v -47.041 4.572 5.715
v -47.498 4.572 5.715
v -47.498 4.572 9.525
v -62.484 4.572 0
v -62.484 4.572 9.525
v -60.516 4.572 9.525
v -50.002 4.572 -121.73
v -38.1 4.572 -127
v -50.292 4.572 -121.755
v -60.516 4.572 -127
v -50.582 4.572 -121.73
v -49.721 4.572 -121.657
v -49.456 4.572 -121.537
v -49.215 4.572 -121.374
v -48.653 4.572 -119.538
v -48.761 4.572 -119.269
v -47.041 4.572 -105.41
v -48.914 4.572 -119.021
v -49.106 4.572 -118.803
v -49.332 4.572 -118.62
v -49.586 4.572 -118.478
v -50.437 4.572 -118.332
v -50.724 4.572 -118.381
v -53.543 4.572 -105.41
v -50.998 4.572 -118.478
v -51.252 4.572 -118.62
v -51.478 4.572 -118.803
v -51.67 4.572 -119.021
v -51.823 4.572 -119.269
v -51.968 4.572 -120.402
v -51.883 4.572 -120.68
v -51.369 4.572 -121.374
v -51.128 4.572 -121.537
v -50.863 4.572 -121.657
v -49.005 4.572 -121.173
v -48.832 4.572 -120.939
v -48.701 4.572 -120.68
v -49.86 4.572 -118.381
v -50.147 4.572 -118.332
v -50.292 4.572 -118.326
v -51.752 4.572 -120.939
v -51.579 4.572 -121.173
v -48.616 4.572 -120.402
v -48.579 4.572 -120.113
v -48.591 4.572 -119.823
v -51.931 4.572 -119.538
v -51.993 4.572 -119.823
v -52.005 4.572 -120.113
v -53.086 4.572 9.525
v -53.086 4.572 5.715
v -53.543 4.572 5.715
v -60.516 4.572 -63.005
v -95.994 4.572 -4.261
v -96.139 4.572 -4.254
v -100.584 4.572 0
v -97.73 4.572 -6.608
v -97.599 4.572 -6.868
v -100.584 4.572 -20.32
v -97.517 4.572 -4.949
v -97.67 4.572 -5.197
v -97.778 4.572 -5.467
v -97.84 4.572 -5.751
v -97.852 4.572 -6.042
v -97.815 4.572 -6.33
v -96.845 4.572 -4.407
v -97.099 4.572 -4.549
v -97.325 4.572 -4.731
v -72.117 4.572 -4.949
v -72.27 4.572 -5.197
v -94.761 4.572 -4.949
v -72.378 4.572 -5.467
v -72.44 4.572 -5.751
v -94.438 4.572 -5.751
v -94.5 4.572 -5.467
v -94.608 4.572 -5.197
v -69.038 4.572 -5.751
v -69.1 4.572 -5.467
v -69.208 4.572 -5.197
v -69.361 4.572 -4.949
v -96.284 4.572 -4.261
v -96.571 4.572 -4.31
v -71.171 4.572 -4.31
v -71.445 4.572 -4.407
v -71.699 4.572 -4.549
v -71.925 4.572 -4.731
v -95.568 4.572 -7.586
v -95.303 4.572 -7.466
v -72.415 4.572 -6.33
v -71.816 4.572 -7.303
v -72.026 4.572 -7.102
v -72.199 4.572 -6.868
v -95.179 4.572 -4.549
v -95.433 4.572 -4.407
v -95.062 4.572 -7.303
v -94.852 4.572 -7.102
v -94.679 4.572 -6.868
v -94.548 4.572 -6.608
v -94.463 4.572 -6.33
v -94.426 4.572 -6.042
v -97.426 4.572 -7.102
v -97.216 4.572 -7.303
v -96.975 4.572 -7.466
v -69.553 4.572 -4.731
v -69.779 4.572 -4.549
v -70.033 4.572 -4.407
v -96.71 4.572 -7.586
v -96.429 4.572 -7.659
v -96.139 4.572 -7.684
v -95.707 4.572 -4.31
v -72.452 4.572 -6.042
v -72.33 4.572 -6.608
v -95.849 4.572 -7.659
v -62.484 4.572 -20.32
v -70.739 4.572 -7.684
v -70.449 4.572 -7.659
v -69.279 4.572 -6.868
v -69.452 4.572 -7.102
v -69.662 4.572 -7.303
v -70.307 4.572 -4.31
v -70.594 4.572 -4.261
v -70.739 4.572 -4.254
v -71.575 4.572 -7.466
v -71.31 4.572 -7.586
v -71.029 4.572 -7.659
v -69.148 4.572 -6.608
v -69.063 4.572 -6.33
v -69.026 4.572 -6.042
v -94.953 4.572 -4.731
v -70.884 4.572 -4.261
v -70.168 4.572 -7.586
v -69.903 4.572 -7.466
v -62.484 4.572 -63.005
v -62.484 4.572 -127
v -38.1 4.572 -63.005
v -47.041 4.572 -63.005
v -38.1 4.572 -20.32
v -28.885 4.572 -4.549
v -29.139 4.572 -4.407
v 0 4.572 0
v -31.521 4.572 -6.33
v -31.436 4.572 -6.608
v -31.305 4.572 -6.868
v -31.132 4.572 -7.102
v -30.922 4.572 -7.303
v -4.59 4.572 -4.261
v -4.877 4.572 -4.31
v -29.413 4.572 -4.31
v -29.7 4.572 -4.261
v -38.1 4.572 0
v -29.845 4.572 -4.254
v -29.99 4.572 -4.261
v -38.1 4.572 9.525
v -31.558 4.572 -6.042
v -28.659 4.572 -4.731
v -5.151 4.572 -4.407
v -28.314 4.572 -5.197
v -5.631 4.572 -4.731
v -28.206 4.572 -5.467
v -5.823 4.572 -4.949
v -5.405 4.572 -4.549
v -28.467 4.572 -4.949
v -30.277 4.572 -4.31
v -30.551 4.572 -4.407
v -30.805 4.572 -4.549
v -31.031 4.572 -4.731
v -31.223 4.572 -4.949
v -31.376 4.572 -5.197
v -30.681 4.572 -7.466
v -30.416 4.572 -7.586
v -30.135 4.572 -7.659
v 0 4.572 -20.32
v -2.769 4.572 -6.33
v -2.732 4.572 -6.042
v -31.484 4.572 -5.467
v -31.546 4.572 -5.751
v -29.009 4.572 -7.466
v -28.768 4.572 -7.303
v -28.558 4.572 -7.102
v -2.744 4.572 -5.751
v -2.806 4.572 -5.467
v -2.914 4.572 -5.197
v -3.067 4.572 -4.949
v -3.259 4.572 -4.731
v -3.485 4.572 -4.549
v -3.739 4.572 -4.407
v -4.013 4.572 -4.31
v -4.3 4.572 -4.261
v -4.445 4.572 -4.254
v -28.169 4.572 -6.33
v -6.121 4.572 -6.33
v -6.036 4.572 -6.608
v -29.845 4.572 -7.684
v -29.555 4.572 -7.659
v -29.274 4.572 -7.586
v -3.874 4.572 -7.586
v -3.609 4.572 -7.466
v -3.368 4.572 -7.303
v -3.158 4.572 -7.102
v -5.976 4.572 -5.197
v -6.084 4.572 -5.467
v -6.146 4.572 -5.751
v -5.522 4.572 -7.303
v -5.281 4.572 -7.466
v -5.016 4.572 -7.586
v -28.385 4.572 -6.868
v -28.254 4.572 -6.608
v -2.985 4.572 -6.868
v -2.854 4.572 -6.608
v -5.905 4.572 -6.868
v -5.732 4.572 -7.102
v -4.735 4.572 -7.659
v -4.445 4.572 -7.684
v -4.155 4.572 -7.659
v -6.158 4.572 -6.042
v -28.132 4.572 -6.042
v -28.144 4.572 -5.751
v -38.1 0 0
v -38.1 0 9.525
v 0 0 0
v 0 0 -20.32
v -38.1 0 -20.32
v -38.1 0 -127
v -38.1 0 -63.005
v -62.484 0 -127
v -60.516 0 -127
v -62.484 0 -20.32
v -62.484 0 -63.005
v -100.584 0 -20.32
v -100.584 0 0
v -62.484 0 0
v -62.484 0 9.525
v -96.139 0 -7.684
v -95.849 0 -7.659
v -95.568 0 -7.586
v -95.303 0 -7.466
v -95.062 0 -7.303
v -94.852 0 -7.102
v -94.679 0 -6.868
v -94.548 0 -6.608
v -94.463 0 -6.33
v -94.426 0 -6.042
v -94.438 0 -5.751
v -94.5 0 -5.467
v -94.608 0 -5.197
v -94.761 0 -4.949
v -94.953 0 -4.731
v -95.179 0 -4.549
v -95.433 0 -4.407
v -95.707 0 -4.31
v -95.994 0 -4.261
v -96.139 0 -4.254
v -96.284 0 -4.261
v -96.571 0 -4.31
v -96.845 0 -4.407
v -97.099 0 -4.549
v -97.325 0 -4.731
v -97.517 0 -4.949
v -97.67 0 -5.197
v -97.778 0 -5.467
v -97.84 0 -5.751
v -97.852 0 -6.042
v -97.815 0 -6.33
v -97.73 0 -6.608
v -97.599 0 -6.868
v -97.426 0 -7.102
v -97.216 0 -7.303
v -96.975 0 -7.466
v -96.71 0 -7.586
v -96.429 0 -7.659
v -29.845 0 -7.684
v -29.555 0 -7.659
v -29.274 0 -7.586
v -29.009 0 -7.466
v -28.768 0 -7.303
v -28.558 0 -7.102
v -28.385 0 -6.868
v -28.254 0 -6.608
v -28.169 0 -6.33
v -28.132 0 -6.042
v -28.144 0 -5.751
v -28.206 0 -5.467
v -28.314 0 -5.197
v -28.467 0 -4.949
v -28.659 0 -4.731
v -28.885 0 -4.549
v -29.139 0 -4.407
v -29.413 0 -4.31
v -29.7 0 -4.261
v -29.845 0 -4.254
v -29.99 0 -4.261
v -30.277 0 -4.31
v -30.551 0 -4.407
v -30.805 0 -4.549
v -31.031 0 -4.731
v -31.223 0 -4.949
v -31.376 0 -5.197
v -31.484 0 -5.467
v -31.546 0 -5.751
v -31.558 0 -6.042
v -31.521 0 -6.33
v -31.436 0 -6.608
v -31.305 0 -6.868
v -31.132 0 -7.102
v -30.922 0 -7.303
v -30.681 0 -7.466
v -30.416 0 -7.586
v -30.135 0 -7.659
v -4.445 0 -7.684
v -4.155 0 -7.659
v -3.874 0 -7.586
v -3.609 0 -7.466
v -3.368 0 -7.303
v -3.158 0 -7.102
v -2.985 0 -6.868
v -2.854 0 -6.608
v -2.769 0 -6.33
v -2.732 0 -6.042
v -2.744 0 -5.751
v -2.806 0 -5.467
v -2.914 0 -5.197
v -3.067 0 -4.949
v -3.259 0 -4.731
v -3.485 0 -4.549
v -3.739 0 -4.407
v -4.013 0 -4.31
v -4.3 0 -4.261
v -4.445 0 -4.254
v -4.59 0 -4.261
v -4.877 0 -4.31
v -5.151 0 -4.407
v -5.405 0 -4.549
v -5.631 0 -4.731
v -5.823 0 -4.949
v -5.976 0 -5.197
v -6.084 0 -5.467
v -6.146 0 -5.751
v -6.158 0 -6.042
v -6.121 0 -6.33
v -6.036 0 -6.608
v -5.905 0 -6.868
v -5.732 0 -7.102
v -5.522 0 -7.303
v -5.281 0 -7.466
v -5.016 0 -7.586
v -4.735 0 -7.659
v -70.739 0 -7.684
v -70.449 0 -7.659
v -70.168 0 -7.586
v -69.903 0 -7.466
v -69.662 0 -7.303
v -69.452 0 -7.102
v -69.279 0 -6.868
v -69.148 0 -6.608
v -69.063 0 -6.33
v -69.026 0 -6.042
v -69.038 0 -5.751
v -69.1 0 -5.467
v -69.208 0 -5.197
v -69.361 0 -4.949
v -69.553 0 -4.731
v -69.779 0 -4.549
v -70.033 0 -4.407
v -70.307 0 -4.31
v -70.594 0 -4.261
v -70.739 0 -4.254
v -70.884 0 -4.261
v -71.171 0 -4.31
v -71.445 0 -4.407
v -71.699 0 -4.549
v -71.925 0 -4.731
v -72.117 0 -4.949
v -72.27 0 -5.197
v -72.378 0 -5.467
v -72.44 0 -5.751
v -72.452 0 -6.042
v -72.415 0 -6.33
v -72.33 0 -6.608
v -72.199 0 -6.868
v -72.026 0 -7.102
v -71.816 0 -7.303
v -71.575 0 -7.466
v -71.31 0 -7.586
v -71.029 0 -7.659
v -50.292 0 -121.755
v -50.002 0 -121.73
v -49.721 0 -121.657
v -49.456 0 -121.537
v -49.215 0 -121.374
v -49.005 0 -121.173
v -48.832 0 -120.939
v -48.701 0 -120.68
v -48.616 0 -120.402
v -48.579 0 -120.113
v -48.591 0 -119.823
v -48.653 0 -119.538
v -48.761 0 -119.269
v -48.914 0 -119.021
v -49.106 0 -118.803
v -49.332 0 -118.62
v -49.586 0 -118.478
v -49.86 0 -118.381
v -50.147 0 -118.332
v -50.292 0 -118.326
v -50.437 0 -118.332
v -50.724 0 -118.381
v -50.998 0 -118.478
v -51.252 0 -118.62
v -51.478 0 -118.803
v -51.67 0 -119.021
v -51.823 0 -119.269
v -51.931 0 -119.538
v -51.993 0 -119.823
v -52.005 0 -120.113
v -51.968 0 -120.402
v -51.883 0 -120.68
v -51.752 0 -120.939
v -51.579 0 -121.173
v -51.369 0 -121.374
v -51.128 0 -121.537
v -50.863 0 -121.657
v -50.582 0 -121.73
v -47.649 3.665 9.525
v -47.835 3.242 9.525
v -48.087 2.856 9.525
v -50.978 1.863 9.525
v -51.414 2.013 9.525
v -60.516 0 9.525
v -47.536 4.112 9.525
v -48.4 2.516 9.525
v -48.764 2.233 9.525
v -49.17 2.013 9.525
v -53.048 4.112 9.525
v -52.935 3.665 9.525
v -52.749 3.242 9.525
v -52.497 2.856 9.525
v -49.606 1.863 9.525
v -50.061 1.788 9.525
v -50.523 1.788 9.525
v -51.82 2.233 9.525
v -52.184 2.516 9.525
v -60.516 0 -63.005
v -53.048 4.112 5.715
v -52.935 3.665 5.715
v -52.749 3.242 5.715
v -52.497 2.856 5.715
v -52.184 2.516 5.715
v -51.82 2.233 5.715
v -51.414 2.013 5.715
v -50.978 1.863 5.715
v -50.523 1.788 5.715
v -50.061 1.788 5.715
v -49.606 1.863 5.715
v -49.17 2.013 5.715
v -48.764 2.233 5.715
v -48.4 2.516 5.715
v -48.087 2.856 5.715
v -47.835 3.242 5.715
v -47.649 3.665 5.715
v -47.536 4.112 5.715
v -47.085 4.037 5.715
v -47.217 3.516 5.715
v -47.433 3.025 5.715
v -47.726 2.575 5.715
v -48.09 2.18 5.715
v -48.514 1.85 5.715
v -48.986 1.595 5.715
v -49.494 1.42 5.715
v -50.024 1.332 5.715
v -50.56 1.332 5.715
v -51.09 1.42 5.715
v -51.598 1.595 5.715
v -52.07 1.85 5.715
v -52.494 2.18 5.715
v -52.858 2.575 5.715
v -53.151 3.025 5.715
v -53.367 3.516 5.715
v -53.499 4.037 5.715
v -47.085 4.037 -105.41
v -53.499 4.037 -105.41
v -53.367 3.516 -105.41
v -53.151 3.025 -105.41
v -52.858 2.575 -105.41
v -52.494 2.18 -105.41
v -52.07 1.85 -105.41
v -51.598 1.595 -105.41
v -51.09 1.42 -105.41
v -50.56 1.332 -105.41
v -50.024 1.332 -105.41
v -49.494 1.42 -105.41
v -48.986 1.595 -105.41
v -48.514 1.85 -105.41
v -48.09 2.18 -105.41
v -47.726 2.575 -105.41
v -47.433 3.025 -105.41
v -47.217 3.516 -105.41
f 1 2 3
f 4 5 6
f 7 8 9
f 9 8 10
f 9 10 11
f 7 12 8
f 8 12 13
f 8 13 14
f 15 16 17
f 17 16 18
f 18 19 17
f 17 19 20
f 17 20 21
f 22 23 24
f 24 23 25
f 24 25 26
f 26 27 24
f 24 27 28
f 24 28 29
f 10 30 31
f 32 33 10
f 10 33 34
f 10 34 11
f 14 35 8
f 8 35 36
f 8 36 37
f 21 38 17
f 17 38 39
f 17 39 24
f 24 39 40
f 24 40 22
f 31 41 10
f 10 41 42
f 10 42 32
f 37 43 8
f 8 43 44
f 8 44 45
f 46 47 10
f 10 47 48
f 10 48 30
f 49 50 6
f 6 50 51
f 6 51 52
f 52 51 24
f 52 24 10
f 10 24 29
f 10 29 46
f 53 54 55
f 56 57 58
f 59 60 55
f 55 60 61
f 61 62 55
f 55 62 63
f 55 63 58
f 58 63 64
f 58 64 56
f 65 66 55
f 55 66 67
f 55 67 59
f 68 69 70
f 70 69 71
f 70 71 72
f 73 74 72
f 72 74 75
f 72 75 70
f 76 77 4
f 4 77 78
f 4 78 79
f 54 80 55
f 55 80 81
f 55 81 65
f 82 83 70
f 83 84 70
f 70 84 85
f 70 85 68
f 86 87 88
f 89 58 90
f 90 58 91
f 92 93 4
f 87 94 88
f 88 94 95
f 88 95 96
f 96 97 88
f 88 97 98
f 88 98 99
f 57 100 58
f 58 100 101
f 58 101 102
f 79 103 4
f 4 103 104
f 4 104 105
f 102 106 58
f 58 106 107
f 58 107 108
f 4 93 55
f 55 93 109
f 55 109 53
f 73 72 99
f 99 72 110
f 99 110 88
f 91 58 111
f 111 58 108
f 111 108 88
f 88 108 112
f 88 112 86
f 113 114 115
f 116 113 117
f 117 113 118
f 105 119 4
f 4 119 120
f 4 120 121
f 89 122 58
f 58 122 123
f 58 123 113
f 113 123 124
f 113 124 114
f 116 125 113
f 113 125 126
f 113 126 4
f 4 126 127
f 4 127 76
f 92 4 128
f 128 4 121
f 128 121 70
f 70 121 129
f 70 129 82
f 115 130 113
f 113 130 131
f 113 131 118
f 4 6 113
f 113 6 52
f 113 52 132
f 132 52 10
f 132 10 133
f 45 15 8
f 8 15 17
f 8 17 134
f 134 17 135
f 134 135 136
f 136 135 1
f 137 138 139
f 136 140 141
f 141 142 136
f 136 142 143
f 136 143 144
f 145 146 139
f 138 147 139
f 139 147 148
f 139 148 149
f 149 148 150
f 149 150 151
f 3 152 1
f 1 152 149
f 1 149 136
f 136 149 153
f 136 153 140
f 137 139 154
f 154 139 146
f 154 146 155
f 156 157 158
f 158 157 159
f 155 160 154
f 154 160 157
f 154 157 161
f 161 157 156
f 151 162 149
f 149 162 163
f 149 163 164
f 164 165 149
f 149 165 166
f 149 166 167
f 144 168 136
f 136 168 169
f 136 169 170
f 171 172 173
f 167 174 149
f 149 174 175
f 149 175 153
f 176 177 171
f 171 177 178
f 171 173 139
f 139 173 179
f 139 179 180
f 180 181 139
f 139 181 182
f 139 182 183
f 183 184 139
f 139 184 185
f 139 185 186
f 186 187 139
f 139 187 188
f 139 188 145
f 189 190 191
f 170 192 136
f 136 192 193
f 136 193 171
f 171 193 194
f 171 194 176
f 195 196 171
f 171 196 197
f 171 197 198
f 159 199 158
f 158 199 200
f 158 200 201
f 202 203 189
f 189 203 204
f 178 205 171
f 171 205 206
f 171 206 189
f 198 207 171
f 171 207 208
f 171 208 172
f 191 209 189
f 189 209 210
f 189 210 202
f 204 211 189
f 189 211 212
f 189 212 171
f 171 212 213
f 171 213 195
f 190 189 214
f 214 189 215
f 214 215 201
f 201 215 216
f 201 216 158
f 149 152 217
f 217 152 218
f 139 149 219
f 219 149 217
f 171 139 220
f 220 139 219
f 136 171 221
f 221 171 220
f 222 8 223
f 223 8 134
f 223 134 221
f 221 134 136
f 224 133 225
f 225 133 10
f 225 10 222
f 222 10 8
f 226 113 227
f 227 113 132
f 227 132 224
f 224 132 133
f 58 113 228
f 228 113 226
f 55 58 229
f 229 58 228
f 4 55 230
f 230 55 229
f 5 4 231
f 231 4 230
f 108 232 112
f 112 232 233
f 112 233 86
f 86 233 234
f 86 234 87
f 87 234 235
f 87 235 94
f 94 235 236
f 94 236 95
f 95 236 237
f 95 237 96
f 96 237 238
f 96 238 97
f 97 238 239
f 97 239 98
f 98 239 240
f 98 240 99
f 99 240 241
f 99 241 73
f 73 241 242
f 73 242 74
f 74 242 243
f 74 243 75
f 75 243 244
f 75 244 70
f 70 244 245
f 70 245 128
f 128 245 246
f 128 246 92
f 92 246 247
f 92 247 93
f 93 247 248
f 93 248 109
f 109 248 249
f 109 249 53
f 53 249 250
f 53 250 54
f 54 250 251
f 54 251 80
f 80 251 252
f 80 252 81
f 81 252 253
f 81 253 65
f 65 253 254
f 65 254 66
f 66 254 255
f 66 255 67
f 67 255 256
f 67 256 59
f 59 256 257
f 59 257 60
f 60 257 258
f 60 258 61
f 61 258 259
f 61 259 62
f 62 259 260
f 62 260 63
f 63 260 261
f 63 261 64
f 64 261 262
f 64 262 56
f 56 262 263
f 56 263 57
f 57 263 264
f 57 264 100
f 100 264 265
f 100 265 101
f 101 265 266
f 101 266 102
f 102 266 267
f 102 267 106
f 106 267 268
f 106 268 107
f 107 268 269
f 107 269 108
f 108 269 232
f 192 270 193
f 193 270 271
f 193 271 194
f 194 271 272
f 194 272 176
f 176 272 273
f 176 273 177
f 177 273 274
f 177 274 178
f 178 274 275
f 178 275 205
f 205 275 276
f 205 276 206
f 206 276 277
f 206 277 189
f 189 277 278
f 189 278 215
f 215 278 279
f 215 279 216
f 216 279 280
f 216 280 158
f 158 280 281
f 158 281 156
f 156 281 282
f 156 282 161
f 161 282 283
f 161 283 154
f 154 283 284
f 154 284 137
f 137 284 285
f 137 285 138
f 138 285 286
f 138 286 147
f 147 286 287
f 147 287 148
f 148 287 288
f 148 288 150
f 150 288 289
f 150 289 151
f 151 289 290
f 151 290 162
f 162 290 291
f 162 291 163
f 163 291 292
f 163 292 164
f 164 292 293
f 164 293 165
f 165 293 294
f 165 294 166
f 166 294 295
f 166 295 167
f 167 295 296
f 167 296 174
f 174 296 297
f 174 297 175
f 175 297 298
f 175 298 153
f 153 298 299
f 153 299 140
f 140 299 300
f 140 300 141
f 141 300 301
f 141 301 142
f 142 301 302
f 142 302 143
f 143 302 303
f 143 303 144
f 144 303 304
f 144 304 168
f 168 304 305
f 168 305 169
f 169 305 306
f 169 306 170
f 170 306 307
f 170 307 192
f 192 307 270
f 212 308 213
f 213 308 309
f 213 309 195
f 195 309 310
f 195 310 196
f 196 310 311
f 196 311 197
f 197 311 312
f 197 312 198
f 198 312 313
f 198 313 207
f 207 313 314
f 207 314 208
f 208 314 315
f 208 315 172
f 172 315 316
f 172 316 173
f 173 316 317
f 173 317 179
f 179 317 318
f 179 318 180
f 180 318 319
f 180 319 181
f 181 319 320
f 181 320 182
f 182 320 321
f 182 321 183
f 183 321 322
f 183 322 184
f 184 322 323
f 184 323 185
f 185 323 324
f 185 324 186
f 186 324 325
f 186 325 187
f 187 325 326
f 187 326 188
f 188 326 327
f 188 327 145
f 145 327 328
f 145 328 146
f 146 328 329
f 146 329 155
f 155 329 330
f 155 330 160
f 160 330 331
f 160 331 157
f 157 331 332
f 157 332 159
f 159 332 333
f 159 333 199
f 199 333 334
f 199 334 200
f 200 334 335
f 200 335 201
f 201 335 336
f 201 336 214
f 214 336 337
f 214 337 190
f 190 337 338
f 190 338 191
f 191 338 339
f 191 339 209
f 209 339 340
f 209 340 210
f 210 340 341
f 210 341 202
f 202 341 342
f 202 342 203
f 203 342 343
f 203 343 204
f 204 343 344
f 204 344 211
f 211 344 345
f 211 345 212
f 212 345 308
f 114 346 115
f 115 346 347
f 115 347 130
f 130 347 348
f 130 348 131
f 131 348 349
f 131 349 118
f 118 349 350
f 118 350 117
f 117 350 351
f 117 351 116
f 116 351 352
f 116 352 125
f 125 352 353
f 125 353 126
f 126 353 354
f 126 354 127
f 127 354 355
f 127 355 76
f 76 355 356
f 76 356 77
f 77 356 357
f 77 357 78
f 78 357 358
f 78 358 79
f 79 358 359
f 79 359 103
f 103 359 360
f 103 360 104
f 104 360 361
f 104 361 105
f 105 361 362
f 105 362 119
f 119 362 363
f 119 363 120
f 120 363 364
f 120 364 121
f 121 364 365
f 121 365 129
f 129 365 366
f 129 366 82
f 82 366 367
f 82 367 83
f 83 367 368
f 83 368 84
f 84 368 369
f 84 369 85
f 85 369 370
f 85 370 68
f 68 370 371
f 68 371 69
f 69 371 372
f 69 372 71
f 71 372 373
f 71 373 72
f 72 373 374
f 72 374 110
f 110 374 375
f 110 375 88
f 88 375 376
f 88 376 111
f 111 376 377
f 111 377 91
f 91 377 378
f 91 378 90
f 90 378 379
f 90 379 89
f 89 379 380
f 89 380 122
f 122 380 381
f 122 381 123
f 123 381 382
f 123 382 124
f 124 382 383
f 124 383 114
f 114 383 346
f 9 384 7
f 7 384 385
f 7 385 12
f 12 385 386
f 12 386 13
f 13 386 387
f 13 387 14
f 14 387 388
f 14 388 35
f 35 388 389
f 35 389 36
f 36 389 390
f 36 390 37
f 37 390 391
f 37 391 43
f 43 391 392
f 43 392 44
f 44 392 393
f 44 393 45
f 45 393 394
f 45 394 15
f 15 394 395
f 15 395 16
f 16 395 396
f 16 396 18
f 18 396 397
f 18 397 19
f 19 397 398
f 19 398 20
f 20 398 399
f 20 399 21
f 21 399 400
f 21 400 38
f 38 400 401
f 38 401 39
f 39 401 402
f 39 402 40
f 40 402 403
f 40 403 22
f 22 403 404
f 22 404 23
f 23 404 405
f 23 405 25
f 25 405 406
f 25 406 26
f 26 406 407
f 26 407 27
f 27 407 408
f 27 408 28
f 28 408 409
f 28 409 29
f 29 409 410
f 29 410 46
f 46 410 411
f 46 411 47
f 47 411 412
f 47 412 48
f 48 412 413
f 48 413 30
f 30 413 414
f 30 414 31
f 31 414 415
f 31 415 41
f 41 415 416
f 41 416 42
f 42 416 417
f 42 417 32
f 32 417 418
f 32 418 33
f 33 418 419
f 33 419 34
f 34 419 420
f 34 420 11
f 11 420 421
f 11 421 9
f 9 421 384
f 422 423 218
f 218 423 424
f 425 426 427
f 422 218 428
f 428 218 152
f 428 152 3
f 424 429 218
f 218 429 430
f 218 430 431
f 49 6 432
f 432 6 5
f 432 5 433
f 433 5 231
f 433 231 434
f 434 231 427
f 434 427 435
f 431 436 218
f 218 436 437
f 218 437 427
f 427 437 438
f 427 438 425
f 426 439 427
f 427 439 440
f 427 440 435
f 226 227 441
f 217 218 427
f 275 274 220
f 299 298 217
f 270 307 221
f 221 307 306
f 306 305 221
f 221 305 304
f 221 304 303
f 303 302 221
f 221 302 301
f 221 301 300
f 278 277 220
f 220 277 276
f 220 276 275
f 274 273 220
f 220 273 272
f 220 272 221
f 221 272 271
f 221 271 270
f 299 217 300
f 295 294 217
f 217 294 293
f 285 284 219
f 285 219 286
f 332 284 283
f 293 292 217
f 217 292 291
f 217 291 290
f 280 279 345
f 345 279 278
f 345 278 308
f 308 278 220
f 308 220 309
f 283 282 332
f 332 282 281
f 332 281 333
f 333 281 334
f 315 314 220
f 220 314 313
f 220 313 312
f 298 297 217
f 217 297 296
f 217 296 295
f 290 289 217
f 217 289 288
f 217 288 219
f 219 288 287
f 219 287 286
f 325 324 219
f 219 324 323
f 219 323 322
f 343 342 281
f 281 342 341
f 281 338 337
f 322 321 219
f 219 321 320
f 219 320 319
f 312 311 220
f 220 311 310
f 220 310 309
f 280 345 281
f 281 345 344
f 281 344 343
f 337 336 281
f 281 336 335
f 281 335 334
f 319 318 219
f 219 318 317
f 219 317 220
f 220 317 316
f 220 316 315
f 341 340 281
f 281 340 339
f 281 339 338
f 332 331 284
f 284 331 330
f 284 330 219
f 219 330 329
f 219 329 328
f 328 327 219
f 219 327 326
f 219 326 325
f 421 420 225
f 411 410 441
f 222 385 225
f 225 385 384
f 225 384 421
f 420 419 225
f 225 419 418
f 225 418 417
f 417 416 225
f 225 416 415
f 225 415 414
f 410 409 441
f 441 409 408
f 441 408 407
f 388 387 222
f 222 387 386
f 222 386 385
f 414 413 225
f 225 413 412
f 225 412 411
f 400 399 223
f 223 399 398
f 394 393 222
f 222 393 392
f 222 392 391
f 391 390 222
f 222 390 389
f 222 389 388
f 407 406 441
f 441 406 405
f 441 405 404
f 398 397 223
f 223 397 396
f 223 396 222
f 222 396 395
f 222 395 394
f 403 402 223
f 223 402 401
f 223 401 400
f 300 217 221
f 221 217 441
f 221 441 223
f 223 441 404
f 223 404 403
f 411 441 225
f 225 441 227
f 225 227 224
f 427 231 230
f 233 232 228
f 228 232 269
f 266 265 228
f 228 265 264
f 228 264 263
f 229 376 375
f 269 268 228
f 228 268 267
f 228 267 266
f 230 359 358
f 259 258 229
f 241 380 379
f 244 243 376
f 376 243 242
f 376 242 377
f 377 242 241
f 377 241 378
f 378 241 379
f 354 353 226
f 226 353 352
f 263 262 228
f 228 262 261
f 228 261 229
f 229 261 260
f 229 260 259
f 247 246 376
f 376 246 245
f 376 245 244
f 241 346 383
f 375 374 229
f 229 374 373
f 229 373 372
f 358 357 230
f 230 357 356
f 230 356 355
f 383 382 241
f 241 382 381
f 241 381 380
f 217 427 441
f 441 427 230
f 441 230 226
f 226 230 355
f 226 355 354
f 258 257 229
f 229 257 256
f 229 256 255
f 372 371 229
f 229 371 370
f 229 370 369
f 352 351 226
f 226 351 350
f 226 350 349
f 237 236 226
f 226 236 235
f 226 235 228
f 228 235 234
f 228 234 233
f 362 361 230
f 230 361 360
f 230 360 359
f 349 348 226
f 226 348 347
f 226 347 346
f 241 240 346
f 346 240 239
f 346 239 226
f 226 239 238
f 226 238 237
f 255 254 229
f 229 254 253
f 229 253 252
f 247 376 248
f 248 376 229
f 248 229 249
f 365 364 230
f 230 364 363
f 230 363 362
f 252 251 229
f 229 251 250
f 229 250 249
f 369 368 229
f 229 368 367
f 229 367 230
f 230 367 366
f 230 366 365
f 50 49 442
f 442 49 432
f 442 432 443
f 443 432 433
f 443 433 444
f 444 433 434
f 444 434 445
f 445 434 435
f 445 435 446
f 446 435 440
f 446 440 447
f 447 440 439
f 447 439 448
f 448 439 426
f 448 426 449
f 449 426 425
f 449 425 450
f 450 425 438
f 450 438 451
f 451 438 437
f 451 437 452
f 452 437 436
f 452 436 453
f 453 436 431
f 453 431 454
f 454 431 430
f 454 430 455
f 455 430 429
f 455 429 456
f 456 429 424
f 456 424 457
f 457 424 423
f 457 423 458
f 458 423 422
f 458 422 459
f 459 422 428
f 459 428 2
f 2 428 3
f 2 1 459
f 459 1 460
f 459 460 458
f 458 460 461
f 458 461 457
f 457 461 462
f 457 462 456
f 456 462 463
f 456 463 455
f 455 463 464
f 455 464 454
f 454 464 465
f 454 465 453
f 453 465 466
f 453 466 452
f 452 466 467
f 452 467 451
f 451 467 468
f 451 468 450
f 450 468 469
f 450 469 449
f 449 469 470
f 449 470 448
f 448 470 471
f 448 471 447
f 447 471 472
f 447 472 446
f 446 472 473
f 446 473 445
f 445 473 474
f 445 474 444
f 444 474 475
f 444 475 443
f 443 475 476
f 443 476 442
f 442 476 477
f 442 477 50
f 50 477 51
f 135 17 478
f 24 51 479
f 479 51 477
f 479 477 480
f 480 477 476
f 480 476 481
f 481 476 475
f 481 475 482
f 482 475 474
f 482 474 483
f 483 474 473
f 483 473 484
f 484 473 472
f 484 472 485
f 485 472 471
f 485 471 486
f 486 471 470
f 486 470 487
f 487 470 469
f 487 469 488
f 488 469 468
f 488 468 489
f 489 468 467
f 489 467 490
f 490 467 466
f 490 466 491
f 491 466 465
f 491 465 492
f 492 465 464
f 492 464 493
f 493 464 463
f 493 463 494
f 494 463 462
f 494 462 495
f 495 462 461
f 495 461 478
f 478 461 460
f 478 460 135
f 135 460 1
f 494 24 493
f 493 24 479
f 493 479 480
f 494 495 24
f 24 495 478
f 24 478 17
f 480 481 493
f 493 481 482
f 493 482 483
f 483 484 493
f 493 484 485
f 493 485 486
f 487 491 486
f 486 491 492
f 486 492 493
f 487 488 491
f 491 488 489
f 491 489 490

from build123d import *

# Parameters (mm, degrees)
SKETCH1_R           = 1.7145
BOSS_EXTRUDE1_DEPTH = 4.572
CUT_EXTRUDE1_DEPTH  = 3.81
CUT_EXTRUDE2_DEPTH  = 111.125


with BuildPart() as part:
    # Sketch1 → Boss-Extrude1 (new body)
    with BuildSketch(Plane(origin=(0, 0, 0), x_dir=(1, 0, 0), z_dir=(0, 1, 0))):
        Polygon((-4.445, 0), (0, 0), (0, 20.32), (-38.1, 20.32), (-38.1, 127), (-62.484, 127), (-62.484, 20.32), (-100.584, 20.32), (-100.584, 0), (-62.484, 0), (-62.484, -9.525), (-38.1, -9.525), (-38.1, 0), align=None)
        with Locations(Location((-96.139, 5.969, 0), (0, 0, 270))):
            Circle(SKETCH1_R, mode=Mode.SUBTRACT)
        with Locations(Location((-70.739, 5.969, 0), (0, 0, 270))):
            Circle(SKETCH1_R, mode=Mode.SUBTRACT)
        with Locations(Location((-29.845, 5.969, 0), (0, 0, 270))):
            Circle(SKETCH1_R, mode=Mode.SUBTRACT)
        with Locations(Location((-4.445, 5.969, 0), (0, 0, 270))):
            Circle(SKETCH1_R, mode=Mode.SUBTRACT)
        with Locations(Location((-50.292, 120.0404, 0), (0, 0, 270))):
            Circle(SKETCH1_R, mode=Mode.SUBTRACT)
    extrude(amount=BOSS_EXTRUDE1_DEPTH)

    # Sketch2 → Cut-Extrude1 (cut)
    with BuildSketch(Plane.XY.offset(9.525)):
        with BuildLine():
            Line((-53.086, 4.572), (-47.498, 4.572))
            ThreePointArc((-47.498, 4.572), (-50.292, 1.778), (-53.086, 4.572))
        make_face()
    extrude(amount=-CUT_EXTRUDE1_DEPTH, mode=Mode.SUBTRACT)

    # Sketch3 → Cut-Extrude2 (cut)
    with BuildSketch(Plane.XY.offset(5.715)):
        with BuildLine():
            Line((-53.5432, 4.572), (-47.0408, 4.572))
            ThreePointArc((-47.0408, 4.572), (-50.292, 1.3208), (-53.5432, 4.572))
        make_face()
    extrude(amount=-CUT_EXTRUDE2_DEPTH, mode=Mode.SUBTRACT)


solid = part.part
